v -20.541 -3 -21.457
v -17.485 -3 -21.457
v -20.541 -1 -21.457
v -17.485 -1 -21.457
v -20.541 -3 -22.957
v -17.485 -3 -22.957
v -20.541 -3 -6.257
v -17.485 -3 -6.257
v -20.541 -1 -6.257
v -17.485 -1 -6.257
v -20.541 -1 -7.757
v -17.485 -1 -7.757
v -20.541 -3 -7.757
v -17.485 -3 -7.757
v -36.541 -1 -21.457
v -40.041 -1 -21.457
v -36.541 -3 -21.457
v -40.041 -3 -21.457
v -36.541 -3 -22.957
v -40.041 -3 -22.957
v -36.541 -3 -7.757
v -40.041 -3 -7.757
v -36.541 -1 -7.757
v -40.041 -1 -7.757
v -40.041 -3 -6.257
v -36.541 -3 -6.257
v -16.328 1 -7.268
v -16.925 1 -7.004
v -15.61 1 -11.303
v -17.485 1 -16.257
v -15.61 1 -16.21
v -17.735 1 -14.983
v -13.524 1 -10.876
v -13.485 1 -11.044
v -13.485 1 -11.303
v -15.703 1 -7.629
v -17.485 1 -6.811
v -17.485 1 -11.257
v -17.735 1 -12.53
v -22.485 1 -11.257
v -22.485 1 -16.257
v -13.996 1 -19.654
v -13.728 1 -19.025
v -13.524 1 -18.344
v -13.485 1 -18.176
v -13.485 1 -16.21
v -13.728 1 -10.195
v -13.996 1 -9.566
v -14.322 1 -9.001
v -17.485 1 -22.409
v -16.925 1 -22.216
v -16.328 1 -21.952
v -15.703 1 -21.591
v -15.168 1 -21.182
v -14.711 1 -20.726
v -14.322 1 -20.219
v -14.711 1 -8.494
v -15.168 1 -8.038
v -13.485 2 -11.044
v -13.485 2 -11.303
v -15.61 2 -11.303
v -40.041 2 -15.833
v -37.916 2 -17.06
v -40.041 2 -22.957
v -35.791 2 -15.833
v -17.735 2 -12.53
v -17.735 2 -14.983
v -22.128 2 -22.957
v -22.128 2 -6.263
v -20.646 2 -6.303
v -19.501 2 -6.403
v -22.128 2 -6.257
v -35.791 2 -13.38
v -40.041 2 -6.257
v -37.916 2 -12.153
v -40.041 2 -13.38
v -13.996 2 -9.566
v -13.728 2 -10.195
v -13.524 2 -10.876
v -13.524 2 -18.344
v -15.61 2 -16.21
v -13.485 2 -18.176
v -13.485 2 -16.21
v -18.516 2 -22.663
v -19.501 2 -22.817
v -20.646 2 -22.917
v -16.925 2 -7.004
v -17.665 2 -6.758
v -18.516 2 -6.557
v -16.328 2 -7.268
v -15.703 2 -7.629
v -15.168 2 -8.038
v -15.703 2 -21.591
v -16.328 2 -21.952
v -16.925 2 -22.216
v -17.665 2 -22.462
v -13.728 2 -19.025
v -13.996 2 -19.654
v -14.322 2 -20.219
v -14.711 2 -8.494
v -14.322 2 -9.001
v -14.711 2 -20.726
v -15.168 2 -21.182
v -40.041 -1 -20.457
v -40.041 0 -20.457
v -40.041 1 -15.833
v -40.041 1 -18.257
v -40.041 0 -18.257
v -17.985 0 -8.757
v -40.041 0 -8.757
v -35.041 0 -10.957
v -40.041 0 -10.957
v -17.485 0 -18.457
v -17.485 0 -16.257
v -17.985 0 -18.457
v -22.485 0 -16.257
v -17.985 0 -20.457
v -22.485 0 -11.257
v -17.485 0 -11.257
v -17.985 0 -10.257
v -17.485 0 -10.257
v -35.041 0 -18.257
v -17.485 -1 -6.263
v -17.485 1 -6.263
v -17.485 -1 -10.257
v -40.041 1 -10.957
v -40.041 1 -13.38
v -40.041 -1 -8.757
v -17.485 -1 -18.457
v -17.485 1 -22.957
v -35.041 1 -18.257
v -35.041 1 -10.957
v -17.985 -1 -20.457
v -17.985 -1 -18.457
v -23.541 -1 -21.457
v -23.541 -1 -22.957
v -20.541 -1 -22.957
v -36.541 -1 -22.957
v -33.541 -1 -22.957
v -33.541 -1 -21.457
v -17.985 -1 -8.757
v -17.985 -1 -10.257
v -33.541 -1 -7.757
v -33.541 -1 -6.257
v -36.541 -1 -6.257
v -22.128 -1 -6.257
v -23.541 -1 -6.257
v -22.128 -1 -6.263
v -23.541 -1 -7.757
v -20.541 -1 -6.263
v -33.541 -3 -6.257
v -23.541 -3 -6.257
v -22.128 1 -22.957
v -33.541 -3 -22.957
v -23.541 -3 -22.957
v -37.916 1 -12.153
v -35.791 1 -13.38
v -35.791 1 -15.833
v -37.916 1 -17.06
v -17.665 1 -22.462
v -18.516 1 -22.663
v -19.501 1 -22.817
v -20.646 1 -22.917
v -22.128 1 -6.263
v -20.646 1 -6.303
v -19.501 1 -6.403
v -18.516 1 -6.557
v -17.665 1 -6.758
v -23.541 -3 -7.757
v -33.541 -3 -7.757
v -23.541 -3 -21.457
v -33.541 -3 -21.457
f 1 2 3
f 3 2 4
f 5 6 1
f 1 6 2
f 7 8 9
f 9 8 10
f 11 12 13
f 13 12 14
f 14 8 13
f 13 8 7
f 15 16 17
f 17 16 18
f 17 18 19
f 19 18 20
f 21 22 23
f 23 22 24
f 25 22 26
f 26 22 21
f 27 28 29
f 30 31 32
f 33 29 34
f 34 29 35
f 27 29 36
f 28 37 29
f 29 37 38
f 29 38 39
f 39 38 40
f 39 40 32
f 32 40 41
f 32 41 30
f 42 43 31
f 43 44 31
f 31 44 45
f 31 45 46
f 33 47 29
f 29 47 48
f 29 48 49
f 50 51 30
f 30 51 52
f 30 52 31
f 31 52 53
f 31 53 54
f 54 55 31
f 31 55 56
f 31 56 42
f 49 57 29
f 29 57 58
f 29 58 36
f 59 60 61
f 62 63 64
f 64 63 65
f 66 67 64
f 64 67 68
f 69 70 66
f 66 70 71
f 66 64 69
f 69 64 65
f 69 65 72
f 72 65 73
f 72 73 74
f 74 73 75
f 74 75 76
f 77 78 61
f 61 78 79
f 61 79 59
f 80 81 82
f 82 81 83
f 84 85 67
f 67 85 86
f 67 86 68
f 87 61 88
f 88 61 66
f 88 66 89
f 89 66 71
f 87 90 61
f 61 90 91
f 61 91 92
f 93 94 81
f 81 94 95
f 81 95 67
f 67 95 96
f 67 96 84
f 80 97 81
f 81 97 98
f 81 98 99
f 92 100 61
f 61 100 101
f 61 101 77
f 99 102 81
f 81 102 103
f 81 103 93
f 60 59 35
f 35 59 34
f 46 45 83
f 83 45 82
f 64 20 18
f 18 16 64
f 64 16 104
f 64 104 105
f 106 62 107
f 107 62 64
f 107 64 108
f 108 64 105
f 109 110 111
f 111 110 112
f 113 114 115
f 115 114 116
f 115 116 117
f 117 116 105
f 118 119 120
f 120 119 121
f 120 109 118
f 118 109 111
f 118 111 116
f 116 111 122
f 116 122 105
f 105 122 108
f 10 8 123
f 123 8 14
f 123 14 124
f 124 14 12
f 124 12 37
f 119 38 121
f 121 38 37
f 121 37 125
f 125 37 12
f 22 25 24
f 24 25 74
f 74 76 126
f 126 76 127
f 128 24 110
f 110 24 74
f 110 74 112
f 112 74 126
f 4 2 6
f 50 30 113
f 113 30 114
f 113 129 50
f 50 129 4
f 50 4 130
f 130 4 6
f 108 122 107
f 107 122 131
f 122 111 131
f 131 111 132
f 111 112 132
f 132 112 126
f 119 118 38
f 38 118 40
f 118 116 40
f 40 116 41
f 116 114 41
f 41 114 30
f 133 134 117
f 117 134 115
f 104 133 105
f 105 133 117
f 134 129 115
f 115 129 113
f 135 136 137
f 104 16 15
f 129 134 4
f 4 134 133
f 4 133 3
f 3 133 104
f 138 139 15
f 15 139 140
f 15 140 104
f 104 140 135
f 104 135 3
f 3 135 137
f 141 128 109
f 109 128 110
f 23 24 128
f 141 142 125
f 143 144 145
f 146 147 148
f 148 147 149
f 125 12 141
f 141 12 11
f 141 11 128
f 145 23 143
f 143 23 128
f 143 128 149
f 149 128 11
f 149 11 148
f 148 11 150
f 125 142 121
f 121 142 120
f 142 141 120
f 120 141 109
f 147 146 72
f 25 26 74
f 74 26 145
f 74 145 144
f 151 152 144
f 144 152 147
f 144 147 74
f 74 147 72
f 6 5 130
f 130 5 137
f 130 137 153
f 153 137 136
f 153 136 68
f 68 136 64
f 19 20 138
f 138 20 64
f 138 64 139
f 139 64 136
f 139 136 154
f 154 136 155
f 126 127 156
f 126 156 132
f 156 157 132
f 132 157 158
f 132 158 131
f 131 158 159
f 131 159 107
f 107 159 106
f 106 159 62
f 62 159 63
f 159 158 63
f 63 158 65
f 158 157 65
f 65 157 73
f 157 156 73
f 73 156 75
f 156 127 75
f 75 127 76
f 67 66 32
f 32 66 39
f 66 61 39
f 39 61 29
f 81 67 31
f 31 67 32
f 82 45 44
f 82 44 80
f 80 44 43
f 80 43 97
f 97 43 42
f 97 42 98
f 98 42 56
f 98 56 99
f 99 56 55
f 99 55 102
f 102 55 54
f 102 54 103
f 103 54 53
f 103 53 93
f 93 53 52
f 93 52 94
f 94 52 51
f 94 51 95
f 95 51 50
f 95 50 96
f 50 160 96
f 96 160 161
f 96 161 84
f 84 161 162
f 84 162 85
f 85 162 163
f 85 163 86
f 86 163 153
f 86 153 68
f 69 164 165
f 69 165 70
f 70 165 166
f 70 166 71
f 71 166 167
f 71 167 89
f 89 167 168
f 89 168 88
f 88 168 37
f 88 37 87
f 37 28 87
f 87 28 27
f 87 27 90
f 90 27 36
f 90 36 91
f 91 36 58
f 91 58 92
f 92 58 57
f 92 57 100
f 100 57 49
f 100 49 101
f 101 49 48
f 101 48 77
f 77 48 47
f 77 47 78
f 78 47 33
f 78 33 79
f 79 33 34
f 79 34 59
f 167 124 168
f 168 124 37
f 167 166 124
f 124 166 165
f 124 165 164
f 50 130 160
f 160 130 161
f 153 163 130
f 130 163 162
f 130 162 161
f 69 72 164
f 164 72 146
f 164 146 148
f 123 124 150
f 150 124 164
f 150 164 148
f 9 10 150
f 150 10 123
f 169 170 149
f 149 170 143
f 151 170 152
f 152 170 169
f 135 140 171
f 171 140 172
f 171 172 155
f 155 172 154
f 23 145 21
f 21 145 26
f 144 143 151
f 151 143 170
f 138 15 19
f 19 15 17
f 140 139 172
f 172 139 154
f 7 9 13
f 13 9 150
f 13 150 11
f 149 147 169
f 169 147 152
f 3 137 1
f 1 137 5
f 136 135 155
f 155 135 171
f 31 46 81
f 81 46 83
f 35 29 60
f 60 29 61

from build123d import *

# Parameters (mm, degrees)
SKETCH1_W           = 22.5552
SKETCH1_H           = 12.7
BOSS_EXTRUDE1_DEPTH = 1
SKETCH2_W           = 5
SKETCH2_H           = 7.3
CUT_EXTRUDE1_DEPTH  = 1
SKETCH3_W           = 5
SKETCH3_H           = 5
CUT_EXTRUDE2_DEPTH  = 1
BOSS_EXTRUDE2_DEPTH = 1
SKETCH5_W           = 26.5552
SKETCH5_H           = 16.7
BOSS_EXTRUDE3_DEPTH = 1
CUT_EXTRUDE3_DEPTH  = 1
CUT_EXTRUDE4_DEPTH  = 1
CUT_EXTRUDE5_START  = -4
CUT_EXTRUDE5_DEPTH  = 5
SKETCH10_W          = 22.5552
SKETCH10_H          = 2
BOSS_EXTRUDE4_DEPTH = 2
SKETCH11_W          = 8.919893548
SKETCH11_H          = 0.730490532
CUT_EXTRUDE6_DEPTH  = 3
SKETCH12_W          = 22.5552
SKETCH12_H          = 1.5
BOSS_EXTRUDE5_DEPTH = 2
SKETCH13_W          = 3
SKETCH13_H          = 1.5
CUT_EXTRUDE7_DEPTH  = 2
SKETCH14_W          = 2.125
SKETCH14_H          = 1.226869322
CUT_EXTRUDE8_DEPTH  = 1


with BuildPart() as part:
    # Sketch1 → Boss-Extrude1 (new body)
    with BuildSketch(Plane(origin=(0, 0, 0), x_dir=(1, 0, 0), z_dir=(0, 1, 0))):
        with Locations((-28.763088774, 14.606547542)):
            Rectangle(SKETCH1_W, SKETCH1_H)
    extrude(amount=BOSS_EXTRUDE1_DEPTH)

    # Sketch2 → Cut-Extrude1 (cut)
    with BuildSketch(Plane(origin=(0, 1, 0), x_dir=(1, 0, 0), z_dir=(0, 1, 0))):
        with Locations((-37.540688774, 14.606547542)):
            Rectangle(SKETCH2_W, SKETCH2_H)
    extrude(amount=-CUT_EXTRUDE1_DEPTH, mode=Mode.SUBTRACT)

    # Sketch3 → Cut-Extrude2 (cut)
    with BuildSketch(Plane(origin=(0, 1, 0), x_dir=(1, 0, 0), z_dir=(0, 1, 0))):
        with Locations((-19.985488774, 13.756547542)):
            Rectangle(SKETCH3_W, SKETCH3_H)
    extrude(amount=-CUT_EXTRUDE2_DEPTH, mode=Mode.SUBTRACT)

    # Sketch4 → Boss-Extrude2 (add)
    with BuildSketch(Plane.XZ):
        Polygon((-40.040688774, -8.256547542), (-40.040688774, -8.756547542), (-17.985488774, -8.756547542), (-17.985488774, -10.256547542), (-17.485488774, -10.256547542), (-17.485488774, -8.256547542), align=None)
        Polygon((-17.985488774, -20.456547542), (-40.040688774, -20.456547542), (-40.040688774, -20.956547542), (-17.485488774, -20.956547542), (-17.485488774, -18.456547542), (-17.985488774, -18.456547542), align=None)
    extrude(amount=BOSS_EXTRUDE2_DEPTH)

    # Sketch5 → Boss-Extrude3 (add)
    with BuildSketch(Plane(origin=(0, 1, 0), x_dir=(1, 0, 0), z_dir=(0, 1, 0))):
        with Locations((-26.763088774, 14.606547542)):
            Rectangle(SKETCH5_W, SKETCH5_H)
    extrude(amount=BOSS_EXTRUDE3_DEPTH)

    # Sketch6 → Cut-Extrude3 (cut)
    with BuildSketch(Plane(origin=(0, 2, 0), x_dir=(1, 0, 0), z_dir=(0, 1, 0))):
        Polygon((-40.040688774, 13.37967822), (-37.915688774, 12.152808898), (-35.790688774, 13.37967822), (-35.790688774, 15.833416864), (-37.915688774, 17.060286186), (-40.040688774, 15.833416864), align=None)
    extrude(amount=-CUT_EXTRUDE3_DEPTH, mode=Mode.SUBTRACT)

    # Sketch7 → Cut-Extrude4 (cut)
    with BuildSketch(Plane(origin=(0, 1, 0), x_dir=(-1, 0, 0), z_dir=(0, -1, 0))):
        Polygon((17.735488774, 14.983416864), (15.610488774, 16.210286186), (13.485488774, 14.983416864), (13.485488774, 12.52967822), (15.610488774, 11.302808898), (17.735488774, 12.52967822), align=None)
    extrude(amount=-CUT_EXTRUDE4_DEPTH, mode=Mode.SUBTRACT)

    # Sketch8 → Cut-Extrude5 (cut)
    with BuildSketch(Plane(origin=(0, 2, 0), x_dir=(1, 0, 0), z_dir=(0, 1, 0)).offset(CUT_EXTRUDE5_START)):
        with BuildLine():
            Line((-13.485488774, 22.956547542), (-22.127760886, 22.956547542))
            add(Edge.make_bspline(
                [(-22.127760886, 22.956547542), (-17.367981555, 22.956547542), (-14.30272025, 21.87197064), (-13.485488774, 18.176213027)],
                knots=[0, 0, 0, 0, 1, 1, 1, 1], degree=3))
            Line((-13.485488774, 18.176213027), (-13.485488774, 22.956547542))
        make_face()
    cut_extrude5 = extrude(amount=CUT_EXTRUDE5_DEPTH, mode=Mode.SUBTRACT)

    # Mirror2: Cut-Extrude5 across plane
    add(cut_extrude5.mirror(Plane.XY.offset(-14.61)), mode=Mode.SUBTRACT)

    # Sketch10 → Boss-Extrude4 (add)
    with BuildSketch(Plane(origin=(0, 1, 0), x_dir=(-1, 0, 0), z_dir=(0, -1, 0))):
        with Locations((28.763088774, 7.256547542)):
            Rectangle(SKETCH10_W, SKETCH10_H)
        with Locations((28.763088774, 21.956547542)):
            Rectangle(SKETCH10_W, SKETCH10_H)
    extrude(amount=BOSS_EXTRUDE4_DEPTH)

    # Sketch11 → Cut-Extrude6 (cut)
    with BuildSketch(Plane(origin=(0, 2, 0), x_dir=(1, 0, 0), z_dir=(0, 1, 0))):
        with Locations((-17.667814112, 5.898207192)):
            Rectangle(SKETCH11_W, SKETCH11_H)
    extrude(amount=-CUT_EXTRUDE6_DEPTH, mode=Mode.SUBTRACT)

    # Sketch12 → Boss-Extrude5 (add)
    with BuildSketch(Plane(origin=(0, -1, 0), x_dir=(-1, 0, 0), z_dir=(0, -1, 0))):
        with Locations((28.763088774, 7.006547542)):
            Rectangle(SKETCH12_W, SKETCH12_H)
        with Locations((28.763088774, 22.206547542)):
            Rectangle(SKETCH12_W, SKETCH12_H)
    extrude(amount=BOSS_EXTRUDE5_DEPTH)

    # Sketch13 → Cut-Extrude7 (cut)
    with BuildSketch(Plane(origin=(0, -3, 0), x_dir=(-1, 0, 0), z_dir=(0, -1, 0))):
        with Locations((35.040688774, 7.006547542)):
            Rectangle(SKETCH13_W, SKETCH13_H)
        with Locations((35.040688774, 22.206547542)):
            Rectangle(SKETCH13_W, SKETCH13_H)
        with Locations((22.040688774, 7.006547542)):
            Rectangle(SKETCH13_W, SKETCH13_H)
        with Locations((22.040688774, 22.206547542)):
            Rectangle(SKETCH13_W, SKETCH13_H)
    extrude(amount=-CUT_EXTRUDE7_DEPTH, mode=Mode.SUBTRACT)

    # Sketch14 → Cut-Extrude8 (cut)
    with BuildSketch(Plane(origin=(0, 2, 0), x_dir=(1, 0, 0), z_dir=(0, 1, 0))):
        with Locations((-14.547988774, 15.596851525)):
            Rectangle(SKETCH14_W, SKETCH14_H)
        with Locations((-14.547988774, 11.916243559)):
            Rectangle(SKETCH14_W, SKETCH14_H)
    extrude(amount=-CUT_EXTRUDE8_DEPTH, mode=Mode.SUBTRACT)


solid = part.part
